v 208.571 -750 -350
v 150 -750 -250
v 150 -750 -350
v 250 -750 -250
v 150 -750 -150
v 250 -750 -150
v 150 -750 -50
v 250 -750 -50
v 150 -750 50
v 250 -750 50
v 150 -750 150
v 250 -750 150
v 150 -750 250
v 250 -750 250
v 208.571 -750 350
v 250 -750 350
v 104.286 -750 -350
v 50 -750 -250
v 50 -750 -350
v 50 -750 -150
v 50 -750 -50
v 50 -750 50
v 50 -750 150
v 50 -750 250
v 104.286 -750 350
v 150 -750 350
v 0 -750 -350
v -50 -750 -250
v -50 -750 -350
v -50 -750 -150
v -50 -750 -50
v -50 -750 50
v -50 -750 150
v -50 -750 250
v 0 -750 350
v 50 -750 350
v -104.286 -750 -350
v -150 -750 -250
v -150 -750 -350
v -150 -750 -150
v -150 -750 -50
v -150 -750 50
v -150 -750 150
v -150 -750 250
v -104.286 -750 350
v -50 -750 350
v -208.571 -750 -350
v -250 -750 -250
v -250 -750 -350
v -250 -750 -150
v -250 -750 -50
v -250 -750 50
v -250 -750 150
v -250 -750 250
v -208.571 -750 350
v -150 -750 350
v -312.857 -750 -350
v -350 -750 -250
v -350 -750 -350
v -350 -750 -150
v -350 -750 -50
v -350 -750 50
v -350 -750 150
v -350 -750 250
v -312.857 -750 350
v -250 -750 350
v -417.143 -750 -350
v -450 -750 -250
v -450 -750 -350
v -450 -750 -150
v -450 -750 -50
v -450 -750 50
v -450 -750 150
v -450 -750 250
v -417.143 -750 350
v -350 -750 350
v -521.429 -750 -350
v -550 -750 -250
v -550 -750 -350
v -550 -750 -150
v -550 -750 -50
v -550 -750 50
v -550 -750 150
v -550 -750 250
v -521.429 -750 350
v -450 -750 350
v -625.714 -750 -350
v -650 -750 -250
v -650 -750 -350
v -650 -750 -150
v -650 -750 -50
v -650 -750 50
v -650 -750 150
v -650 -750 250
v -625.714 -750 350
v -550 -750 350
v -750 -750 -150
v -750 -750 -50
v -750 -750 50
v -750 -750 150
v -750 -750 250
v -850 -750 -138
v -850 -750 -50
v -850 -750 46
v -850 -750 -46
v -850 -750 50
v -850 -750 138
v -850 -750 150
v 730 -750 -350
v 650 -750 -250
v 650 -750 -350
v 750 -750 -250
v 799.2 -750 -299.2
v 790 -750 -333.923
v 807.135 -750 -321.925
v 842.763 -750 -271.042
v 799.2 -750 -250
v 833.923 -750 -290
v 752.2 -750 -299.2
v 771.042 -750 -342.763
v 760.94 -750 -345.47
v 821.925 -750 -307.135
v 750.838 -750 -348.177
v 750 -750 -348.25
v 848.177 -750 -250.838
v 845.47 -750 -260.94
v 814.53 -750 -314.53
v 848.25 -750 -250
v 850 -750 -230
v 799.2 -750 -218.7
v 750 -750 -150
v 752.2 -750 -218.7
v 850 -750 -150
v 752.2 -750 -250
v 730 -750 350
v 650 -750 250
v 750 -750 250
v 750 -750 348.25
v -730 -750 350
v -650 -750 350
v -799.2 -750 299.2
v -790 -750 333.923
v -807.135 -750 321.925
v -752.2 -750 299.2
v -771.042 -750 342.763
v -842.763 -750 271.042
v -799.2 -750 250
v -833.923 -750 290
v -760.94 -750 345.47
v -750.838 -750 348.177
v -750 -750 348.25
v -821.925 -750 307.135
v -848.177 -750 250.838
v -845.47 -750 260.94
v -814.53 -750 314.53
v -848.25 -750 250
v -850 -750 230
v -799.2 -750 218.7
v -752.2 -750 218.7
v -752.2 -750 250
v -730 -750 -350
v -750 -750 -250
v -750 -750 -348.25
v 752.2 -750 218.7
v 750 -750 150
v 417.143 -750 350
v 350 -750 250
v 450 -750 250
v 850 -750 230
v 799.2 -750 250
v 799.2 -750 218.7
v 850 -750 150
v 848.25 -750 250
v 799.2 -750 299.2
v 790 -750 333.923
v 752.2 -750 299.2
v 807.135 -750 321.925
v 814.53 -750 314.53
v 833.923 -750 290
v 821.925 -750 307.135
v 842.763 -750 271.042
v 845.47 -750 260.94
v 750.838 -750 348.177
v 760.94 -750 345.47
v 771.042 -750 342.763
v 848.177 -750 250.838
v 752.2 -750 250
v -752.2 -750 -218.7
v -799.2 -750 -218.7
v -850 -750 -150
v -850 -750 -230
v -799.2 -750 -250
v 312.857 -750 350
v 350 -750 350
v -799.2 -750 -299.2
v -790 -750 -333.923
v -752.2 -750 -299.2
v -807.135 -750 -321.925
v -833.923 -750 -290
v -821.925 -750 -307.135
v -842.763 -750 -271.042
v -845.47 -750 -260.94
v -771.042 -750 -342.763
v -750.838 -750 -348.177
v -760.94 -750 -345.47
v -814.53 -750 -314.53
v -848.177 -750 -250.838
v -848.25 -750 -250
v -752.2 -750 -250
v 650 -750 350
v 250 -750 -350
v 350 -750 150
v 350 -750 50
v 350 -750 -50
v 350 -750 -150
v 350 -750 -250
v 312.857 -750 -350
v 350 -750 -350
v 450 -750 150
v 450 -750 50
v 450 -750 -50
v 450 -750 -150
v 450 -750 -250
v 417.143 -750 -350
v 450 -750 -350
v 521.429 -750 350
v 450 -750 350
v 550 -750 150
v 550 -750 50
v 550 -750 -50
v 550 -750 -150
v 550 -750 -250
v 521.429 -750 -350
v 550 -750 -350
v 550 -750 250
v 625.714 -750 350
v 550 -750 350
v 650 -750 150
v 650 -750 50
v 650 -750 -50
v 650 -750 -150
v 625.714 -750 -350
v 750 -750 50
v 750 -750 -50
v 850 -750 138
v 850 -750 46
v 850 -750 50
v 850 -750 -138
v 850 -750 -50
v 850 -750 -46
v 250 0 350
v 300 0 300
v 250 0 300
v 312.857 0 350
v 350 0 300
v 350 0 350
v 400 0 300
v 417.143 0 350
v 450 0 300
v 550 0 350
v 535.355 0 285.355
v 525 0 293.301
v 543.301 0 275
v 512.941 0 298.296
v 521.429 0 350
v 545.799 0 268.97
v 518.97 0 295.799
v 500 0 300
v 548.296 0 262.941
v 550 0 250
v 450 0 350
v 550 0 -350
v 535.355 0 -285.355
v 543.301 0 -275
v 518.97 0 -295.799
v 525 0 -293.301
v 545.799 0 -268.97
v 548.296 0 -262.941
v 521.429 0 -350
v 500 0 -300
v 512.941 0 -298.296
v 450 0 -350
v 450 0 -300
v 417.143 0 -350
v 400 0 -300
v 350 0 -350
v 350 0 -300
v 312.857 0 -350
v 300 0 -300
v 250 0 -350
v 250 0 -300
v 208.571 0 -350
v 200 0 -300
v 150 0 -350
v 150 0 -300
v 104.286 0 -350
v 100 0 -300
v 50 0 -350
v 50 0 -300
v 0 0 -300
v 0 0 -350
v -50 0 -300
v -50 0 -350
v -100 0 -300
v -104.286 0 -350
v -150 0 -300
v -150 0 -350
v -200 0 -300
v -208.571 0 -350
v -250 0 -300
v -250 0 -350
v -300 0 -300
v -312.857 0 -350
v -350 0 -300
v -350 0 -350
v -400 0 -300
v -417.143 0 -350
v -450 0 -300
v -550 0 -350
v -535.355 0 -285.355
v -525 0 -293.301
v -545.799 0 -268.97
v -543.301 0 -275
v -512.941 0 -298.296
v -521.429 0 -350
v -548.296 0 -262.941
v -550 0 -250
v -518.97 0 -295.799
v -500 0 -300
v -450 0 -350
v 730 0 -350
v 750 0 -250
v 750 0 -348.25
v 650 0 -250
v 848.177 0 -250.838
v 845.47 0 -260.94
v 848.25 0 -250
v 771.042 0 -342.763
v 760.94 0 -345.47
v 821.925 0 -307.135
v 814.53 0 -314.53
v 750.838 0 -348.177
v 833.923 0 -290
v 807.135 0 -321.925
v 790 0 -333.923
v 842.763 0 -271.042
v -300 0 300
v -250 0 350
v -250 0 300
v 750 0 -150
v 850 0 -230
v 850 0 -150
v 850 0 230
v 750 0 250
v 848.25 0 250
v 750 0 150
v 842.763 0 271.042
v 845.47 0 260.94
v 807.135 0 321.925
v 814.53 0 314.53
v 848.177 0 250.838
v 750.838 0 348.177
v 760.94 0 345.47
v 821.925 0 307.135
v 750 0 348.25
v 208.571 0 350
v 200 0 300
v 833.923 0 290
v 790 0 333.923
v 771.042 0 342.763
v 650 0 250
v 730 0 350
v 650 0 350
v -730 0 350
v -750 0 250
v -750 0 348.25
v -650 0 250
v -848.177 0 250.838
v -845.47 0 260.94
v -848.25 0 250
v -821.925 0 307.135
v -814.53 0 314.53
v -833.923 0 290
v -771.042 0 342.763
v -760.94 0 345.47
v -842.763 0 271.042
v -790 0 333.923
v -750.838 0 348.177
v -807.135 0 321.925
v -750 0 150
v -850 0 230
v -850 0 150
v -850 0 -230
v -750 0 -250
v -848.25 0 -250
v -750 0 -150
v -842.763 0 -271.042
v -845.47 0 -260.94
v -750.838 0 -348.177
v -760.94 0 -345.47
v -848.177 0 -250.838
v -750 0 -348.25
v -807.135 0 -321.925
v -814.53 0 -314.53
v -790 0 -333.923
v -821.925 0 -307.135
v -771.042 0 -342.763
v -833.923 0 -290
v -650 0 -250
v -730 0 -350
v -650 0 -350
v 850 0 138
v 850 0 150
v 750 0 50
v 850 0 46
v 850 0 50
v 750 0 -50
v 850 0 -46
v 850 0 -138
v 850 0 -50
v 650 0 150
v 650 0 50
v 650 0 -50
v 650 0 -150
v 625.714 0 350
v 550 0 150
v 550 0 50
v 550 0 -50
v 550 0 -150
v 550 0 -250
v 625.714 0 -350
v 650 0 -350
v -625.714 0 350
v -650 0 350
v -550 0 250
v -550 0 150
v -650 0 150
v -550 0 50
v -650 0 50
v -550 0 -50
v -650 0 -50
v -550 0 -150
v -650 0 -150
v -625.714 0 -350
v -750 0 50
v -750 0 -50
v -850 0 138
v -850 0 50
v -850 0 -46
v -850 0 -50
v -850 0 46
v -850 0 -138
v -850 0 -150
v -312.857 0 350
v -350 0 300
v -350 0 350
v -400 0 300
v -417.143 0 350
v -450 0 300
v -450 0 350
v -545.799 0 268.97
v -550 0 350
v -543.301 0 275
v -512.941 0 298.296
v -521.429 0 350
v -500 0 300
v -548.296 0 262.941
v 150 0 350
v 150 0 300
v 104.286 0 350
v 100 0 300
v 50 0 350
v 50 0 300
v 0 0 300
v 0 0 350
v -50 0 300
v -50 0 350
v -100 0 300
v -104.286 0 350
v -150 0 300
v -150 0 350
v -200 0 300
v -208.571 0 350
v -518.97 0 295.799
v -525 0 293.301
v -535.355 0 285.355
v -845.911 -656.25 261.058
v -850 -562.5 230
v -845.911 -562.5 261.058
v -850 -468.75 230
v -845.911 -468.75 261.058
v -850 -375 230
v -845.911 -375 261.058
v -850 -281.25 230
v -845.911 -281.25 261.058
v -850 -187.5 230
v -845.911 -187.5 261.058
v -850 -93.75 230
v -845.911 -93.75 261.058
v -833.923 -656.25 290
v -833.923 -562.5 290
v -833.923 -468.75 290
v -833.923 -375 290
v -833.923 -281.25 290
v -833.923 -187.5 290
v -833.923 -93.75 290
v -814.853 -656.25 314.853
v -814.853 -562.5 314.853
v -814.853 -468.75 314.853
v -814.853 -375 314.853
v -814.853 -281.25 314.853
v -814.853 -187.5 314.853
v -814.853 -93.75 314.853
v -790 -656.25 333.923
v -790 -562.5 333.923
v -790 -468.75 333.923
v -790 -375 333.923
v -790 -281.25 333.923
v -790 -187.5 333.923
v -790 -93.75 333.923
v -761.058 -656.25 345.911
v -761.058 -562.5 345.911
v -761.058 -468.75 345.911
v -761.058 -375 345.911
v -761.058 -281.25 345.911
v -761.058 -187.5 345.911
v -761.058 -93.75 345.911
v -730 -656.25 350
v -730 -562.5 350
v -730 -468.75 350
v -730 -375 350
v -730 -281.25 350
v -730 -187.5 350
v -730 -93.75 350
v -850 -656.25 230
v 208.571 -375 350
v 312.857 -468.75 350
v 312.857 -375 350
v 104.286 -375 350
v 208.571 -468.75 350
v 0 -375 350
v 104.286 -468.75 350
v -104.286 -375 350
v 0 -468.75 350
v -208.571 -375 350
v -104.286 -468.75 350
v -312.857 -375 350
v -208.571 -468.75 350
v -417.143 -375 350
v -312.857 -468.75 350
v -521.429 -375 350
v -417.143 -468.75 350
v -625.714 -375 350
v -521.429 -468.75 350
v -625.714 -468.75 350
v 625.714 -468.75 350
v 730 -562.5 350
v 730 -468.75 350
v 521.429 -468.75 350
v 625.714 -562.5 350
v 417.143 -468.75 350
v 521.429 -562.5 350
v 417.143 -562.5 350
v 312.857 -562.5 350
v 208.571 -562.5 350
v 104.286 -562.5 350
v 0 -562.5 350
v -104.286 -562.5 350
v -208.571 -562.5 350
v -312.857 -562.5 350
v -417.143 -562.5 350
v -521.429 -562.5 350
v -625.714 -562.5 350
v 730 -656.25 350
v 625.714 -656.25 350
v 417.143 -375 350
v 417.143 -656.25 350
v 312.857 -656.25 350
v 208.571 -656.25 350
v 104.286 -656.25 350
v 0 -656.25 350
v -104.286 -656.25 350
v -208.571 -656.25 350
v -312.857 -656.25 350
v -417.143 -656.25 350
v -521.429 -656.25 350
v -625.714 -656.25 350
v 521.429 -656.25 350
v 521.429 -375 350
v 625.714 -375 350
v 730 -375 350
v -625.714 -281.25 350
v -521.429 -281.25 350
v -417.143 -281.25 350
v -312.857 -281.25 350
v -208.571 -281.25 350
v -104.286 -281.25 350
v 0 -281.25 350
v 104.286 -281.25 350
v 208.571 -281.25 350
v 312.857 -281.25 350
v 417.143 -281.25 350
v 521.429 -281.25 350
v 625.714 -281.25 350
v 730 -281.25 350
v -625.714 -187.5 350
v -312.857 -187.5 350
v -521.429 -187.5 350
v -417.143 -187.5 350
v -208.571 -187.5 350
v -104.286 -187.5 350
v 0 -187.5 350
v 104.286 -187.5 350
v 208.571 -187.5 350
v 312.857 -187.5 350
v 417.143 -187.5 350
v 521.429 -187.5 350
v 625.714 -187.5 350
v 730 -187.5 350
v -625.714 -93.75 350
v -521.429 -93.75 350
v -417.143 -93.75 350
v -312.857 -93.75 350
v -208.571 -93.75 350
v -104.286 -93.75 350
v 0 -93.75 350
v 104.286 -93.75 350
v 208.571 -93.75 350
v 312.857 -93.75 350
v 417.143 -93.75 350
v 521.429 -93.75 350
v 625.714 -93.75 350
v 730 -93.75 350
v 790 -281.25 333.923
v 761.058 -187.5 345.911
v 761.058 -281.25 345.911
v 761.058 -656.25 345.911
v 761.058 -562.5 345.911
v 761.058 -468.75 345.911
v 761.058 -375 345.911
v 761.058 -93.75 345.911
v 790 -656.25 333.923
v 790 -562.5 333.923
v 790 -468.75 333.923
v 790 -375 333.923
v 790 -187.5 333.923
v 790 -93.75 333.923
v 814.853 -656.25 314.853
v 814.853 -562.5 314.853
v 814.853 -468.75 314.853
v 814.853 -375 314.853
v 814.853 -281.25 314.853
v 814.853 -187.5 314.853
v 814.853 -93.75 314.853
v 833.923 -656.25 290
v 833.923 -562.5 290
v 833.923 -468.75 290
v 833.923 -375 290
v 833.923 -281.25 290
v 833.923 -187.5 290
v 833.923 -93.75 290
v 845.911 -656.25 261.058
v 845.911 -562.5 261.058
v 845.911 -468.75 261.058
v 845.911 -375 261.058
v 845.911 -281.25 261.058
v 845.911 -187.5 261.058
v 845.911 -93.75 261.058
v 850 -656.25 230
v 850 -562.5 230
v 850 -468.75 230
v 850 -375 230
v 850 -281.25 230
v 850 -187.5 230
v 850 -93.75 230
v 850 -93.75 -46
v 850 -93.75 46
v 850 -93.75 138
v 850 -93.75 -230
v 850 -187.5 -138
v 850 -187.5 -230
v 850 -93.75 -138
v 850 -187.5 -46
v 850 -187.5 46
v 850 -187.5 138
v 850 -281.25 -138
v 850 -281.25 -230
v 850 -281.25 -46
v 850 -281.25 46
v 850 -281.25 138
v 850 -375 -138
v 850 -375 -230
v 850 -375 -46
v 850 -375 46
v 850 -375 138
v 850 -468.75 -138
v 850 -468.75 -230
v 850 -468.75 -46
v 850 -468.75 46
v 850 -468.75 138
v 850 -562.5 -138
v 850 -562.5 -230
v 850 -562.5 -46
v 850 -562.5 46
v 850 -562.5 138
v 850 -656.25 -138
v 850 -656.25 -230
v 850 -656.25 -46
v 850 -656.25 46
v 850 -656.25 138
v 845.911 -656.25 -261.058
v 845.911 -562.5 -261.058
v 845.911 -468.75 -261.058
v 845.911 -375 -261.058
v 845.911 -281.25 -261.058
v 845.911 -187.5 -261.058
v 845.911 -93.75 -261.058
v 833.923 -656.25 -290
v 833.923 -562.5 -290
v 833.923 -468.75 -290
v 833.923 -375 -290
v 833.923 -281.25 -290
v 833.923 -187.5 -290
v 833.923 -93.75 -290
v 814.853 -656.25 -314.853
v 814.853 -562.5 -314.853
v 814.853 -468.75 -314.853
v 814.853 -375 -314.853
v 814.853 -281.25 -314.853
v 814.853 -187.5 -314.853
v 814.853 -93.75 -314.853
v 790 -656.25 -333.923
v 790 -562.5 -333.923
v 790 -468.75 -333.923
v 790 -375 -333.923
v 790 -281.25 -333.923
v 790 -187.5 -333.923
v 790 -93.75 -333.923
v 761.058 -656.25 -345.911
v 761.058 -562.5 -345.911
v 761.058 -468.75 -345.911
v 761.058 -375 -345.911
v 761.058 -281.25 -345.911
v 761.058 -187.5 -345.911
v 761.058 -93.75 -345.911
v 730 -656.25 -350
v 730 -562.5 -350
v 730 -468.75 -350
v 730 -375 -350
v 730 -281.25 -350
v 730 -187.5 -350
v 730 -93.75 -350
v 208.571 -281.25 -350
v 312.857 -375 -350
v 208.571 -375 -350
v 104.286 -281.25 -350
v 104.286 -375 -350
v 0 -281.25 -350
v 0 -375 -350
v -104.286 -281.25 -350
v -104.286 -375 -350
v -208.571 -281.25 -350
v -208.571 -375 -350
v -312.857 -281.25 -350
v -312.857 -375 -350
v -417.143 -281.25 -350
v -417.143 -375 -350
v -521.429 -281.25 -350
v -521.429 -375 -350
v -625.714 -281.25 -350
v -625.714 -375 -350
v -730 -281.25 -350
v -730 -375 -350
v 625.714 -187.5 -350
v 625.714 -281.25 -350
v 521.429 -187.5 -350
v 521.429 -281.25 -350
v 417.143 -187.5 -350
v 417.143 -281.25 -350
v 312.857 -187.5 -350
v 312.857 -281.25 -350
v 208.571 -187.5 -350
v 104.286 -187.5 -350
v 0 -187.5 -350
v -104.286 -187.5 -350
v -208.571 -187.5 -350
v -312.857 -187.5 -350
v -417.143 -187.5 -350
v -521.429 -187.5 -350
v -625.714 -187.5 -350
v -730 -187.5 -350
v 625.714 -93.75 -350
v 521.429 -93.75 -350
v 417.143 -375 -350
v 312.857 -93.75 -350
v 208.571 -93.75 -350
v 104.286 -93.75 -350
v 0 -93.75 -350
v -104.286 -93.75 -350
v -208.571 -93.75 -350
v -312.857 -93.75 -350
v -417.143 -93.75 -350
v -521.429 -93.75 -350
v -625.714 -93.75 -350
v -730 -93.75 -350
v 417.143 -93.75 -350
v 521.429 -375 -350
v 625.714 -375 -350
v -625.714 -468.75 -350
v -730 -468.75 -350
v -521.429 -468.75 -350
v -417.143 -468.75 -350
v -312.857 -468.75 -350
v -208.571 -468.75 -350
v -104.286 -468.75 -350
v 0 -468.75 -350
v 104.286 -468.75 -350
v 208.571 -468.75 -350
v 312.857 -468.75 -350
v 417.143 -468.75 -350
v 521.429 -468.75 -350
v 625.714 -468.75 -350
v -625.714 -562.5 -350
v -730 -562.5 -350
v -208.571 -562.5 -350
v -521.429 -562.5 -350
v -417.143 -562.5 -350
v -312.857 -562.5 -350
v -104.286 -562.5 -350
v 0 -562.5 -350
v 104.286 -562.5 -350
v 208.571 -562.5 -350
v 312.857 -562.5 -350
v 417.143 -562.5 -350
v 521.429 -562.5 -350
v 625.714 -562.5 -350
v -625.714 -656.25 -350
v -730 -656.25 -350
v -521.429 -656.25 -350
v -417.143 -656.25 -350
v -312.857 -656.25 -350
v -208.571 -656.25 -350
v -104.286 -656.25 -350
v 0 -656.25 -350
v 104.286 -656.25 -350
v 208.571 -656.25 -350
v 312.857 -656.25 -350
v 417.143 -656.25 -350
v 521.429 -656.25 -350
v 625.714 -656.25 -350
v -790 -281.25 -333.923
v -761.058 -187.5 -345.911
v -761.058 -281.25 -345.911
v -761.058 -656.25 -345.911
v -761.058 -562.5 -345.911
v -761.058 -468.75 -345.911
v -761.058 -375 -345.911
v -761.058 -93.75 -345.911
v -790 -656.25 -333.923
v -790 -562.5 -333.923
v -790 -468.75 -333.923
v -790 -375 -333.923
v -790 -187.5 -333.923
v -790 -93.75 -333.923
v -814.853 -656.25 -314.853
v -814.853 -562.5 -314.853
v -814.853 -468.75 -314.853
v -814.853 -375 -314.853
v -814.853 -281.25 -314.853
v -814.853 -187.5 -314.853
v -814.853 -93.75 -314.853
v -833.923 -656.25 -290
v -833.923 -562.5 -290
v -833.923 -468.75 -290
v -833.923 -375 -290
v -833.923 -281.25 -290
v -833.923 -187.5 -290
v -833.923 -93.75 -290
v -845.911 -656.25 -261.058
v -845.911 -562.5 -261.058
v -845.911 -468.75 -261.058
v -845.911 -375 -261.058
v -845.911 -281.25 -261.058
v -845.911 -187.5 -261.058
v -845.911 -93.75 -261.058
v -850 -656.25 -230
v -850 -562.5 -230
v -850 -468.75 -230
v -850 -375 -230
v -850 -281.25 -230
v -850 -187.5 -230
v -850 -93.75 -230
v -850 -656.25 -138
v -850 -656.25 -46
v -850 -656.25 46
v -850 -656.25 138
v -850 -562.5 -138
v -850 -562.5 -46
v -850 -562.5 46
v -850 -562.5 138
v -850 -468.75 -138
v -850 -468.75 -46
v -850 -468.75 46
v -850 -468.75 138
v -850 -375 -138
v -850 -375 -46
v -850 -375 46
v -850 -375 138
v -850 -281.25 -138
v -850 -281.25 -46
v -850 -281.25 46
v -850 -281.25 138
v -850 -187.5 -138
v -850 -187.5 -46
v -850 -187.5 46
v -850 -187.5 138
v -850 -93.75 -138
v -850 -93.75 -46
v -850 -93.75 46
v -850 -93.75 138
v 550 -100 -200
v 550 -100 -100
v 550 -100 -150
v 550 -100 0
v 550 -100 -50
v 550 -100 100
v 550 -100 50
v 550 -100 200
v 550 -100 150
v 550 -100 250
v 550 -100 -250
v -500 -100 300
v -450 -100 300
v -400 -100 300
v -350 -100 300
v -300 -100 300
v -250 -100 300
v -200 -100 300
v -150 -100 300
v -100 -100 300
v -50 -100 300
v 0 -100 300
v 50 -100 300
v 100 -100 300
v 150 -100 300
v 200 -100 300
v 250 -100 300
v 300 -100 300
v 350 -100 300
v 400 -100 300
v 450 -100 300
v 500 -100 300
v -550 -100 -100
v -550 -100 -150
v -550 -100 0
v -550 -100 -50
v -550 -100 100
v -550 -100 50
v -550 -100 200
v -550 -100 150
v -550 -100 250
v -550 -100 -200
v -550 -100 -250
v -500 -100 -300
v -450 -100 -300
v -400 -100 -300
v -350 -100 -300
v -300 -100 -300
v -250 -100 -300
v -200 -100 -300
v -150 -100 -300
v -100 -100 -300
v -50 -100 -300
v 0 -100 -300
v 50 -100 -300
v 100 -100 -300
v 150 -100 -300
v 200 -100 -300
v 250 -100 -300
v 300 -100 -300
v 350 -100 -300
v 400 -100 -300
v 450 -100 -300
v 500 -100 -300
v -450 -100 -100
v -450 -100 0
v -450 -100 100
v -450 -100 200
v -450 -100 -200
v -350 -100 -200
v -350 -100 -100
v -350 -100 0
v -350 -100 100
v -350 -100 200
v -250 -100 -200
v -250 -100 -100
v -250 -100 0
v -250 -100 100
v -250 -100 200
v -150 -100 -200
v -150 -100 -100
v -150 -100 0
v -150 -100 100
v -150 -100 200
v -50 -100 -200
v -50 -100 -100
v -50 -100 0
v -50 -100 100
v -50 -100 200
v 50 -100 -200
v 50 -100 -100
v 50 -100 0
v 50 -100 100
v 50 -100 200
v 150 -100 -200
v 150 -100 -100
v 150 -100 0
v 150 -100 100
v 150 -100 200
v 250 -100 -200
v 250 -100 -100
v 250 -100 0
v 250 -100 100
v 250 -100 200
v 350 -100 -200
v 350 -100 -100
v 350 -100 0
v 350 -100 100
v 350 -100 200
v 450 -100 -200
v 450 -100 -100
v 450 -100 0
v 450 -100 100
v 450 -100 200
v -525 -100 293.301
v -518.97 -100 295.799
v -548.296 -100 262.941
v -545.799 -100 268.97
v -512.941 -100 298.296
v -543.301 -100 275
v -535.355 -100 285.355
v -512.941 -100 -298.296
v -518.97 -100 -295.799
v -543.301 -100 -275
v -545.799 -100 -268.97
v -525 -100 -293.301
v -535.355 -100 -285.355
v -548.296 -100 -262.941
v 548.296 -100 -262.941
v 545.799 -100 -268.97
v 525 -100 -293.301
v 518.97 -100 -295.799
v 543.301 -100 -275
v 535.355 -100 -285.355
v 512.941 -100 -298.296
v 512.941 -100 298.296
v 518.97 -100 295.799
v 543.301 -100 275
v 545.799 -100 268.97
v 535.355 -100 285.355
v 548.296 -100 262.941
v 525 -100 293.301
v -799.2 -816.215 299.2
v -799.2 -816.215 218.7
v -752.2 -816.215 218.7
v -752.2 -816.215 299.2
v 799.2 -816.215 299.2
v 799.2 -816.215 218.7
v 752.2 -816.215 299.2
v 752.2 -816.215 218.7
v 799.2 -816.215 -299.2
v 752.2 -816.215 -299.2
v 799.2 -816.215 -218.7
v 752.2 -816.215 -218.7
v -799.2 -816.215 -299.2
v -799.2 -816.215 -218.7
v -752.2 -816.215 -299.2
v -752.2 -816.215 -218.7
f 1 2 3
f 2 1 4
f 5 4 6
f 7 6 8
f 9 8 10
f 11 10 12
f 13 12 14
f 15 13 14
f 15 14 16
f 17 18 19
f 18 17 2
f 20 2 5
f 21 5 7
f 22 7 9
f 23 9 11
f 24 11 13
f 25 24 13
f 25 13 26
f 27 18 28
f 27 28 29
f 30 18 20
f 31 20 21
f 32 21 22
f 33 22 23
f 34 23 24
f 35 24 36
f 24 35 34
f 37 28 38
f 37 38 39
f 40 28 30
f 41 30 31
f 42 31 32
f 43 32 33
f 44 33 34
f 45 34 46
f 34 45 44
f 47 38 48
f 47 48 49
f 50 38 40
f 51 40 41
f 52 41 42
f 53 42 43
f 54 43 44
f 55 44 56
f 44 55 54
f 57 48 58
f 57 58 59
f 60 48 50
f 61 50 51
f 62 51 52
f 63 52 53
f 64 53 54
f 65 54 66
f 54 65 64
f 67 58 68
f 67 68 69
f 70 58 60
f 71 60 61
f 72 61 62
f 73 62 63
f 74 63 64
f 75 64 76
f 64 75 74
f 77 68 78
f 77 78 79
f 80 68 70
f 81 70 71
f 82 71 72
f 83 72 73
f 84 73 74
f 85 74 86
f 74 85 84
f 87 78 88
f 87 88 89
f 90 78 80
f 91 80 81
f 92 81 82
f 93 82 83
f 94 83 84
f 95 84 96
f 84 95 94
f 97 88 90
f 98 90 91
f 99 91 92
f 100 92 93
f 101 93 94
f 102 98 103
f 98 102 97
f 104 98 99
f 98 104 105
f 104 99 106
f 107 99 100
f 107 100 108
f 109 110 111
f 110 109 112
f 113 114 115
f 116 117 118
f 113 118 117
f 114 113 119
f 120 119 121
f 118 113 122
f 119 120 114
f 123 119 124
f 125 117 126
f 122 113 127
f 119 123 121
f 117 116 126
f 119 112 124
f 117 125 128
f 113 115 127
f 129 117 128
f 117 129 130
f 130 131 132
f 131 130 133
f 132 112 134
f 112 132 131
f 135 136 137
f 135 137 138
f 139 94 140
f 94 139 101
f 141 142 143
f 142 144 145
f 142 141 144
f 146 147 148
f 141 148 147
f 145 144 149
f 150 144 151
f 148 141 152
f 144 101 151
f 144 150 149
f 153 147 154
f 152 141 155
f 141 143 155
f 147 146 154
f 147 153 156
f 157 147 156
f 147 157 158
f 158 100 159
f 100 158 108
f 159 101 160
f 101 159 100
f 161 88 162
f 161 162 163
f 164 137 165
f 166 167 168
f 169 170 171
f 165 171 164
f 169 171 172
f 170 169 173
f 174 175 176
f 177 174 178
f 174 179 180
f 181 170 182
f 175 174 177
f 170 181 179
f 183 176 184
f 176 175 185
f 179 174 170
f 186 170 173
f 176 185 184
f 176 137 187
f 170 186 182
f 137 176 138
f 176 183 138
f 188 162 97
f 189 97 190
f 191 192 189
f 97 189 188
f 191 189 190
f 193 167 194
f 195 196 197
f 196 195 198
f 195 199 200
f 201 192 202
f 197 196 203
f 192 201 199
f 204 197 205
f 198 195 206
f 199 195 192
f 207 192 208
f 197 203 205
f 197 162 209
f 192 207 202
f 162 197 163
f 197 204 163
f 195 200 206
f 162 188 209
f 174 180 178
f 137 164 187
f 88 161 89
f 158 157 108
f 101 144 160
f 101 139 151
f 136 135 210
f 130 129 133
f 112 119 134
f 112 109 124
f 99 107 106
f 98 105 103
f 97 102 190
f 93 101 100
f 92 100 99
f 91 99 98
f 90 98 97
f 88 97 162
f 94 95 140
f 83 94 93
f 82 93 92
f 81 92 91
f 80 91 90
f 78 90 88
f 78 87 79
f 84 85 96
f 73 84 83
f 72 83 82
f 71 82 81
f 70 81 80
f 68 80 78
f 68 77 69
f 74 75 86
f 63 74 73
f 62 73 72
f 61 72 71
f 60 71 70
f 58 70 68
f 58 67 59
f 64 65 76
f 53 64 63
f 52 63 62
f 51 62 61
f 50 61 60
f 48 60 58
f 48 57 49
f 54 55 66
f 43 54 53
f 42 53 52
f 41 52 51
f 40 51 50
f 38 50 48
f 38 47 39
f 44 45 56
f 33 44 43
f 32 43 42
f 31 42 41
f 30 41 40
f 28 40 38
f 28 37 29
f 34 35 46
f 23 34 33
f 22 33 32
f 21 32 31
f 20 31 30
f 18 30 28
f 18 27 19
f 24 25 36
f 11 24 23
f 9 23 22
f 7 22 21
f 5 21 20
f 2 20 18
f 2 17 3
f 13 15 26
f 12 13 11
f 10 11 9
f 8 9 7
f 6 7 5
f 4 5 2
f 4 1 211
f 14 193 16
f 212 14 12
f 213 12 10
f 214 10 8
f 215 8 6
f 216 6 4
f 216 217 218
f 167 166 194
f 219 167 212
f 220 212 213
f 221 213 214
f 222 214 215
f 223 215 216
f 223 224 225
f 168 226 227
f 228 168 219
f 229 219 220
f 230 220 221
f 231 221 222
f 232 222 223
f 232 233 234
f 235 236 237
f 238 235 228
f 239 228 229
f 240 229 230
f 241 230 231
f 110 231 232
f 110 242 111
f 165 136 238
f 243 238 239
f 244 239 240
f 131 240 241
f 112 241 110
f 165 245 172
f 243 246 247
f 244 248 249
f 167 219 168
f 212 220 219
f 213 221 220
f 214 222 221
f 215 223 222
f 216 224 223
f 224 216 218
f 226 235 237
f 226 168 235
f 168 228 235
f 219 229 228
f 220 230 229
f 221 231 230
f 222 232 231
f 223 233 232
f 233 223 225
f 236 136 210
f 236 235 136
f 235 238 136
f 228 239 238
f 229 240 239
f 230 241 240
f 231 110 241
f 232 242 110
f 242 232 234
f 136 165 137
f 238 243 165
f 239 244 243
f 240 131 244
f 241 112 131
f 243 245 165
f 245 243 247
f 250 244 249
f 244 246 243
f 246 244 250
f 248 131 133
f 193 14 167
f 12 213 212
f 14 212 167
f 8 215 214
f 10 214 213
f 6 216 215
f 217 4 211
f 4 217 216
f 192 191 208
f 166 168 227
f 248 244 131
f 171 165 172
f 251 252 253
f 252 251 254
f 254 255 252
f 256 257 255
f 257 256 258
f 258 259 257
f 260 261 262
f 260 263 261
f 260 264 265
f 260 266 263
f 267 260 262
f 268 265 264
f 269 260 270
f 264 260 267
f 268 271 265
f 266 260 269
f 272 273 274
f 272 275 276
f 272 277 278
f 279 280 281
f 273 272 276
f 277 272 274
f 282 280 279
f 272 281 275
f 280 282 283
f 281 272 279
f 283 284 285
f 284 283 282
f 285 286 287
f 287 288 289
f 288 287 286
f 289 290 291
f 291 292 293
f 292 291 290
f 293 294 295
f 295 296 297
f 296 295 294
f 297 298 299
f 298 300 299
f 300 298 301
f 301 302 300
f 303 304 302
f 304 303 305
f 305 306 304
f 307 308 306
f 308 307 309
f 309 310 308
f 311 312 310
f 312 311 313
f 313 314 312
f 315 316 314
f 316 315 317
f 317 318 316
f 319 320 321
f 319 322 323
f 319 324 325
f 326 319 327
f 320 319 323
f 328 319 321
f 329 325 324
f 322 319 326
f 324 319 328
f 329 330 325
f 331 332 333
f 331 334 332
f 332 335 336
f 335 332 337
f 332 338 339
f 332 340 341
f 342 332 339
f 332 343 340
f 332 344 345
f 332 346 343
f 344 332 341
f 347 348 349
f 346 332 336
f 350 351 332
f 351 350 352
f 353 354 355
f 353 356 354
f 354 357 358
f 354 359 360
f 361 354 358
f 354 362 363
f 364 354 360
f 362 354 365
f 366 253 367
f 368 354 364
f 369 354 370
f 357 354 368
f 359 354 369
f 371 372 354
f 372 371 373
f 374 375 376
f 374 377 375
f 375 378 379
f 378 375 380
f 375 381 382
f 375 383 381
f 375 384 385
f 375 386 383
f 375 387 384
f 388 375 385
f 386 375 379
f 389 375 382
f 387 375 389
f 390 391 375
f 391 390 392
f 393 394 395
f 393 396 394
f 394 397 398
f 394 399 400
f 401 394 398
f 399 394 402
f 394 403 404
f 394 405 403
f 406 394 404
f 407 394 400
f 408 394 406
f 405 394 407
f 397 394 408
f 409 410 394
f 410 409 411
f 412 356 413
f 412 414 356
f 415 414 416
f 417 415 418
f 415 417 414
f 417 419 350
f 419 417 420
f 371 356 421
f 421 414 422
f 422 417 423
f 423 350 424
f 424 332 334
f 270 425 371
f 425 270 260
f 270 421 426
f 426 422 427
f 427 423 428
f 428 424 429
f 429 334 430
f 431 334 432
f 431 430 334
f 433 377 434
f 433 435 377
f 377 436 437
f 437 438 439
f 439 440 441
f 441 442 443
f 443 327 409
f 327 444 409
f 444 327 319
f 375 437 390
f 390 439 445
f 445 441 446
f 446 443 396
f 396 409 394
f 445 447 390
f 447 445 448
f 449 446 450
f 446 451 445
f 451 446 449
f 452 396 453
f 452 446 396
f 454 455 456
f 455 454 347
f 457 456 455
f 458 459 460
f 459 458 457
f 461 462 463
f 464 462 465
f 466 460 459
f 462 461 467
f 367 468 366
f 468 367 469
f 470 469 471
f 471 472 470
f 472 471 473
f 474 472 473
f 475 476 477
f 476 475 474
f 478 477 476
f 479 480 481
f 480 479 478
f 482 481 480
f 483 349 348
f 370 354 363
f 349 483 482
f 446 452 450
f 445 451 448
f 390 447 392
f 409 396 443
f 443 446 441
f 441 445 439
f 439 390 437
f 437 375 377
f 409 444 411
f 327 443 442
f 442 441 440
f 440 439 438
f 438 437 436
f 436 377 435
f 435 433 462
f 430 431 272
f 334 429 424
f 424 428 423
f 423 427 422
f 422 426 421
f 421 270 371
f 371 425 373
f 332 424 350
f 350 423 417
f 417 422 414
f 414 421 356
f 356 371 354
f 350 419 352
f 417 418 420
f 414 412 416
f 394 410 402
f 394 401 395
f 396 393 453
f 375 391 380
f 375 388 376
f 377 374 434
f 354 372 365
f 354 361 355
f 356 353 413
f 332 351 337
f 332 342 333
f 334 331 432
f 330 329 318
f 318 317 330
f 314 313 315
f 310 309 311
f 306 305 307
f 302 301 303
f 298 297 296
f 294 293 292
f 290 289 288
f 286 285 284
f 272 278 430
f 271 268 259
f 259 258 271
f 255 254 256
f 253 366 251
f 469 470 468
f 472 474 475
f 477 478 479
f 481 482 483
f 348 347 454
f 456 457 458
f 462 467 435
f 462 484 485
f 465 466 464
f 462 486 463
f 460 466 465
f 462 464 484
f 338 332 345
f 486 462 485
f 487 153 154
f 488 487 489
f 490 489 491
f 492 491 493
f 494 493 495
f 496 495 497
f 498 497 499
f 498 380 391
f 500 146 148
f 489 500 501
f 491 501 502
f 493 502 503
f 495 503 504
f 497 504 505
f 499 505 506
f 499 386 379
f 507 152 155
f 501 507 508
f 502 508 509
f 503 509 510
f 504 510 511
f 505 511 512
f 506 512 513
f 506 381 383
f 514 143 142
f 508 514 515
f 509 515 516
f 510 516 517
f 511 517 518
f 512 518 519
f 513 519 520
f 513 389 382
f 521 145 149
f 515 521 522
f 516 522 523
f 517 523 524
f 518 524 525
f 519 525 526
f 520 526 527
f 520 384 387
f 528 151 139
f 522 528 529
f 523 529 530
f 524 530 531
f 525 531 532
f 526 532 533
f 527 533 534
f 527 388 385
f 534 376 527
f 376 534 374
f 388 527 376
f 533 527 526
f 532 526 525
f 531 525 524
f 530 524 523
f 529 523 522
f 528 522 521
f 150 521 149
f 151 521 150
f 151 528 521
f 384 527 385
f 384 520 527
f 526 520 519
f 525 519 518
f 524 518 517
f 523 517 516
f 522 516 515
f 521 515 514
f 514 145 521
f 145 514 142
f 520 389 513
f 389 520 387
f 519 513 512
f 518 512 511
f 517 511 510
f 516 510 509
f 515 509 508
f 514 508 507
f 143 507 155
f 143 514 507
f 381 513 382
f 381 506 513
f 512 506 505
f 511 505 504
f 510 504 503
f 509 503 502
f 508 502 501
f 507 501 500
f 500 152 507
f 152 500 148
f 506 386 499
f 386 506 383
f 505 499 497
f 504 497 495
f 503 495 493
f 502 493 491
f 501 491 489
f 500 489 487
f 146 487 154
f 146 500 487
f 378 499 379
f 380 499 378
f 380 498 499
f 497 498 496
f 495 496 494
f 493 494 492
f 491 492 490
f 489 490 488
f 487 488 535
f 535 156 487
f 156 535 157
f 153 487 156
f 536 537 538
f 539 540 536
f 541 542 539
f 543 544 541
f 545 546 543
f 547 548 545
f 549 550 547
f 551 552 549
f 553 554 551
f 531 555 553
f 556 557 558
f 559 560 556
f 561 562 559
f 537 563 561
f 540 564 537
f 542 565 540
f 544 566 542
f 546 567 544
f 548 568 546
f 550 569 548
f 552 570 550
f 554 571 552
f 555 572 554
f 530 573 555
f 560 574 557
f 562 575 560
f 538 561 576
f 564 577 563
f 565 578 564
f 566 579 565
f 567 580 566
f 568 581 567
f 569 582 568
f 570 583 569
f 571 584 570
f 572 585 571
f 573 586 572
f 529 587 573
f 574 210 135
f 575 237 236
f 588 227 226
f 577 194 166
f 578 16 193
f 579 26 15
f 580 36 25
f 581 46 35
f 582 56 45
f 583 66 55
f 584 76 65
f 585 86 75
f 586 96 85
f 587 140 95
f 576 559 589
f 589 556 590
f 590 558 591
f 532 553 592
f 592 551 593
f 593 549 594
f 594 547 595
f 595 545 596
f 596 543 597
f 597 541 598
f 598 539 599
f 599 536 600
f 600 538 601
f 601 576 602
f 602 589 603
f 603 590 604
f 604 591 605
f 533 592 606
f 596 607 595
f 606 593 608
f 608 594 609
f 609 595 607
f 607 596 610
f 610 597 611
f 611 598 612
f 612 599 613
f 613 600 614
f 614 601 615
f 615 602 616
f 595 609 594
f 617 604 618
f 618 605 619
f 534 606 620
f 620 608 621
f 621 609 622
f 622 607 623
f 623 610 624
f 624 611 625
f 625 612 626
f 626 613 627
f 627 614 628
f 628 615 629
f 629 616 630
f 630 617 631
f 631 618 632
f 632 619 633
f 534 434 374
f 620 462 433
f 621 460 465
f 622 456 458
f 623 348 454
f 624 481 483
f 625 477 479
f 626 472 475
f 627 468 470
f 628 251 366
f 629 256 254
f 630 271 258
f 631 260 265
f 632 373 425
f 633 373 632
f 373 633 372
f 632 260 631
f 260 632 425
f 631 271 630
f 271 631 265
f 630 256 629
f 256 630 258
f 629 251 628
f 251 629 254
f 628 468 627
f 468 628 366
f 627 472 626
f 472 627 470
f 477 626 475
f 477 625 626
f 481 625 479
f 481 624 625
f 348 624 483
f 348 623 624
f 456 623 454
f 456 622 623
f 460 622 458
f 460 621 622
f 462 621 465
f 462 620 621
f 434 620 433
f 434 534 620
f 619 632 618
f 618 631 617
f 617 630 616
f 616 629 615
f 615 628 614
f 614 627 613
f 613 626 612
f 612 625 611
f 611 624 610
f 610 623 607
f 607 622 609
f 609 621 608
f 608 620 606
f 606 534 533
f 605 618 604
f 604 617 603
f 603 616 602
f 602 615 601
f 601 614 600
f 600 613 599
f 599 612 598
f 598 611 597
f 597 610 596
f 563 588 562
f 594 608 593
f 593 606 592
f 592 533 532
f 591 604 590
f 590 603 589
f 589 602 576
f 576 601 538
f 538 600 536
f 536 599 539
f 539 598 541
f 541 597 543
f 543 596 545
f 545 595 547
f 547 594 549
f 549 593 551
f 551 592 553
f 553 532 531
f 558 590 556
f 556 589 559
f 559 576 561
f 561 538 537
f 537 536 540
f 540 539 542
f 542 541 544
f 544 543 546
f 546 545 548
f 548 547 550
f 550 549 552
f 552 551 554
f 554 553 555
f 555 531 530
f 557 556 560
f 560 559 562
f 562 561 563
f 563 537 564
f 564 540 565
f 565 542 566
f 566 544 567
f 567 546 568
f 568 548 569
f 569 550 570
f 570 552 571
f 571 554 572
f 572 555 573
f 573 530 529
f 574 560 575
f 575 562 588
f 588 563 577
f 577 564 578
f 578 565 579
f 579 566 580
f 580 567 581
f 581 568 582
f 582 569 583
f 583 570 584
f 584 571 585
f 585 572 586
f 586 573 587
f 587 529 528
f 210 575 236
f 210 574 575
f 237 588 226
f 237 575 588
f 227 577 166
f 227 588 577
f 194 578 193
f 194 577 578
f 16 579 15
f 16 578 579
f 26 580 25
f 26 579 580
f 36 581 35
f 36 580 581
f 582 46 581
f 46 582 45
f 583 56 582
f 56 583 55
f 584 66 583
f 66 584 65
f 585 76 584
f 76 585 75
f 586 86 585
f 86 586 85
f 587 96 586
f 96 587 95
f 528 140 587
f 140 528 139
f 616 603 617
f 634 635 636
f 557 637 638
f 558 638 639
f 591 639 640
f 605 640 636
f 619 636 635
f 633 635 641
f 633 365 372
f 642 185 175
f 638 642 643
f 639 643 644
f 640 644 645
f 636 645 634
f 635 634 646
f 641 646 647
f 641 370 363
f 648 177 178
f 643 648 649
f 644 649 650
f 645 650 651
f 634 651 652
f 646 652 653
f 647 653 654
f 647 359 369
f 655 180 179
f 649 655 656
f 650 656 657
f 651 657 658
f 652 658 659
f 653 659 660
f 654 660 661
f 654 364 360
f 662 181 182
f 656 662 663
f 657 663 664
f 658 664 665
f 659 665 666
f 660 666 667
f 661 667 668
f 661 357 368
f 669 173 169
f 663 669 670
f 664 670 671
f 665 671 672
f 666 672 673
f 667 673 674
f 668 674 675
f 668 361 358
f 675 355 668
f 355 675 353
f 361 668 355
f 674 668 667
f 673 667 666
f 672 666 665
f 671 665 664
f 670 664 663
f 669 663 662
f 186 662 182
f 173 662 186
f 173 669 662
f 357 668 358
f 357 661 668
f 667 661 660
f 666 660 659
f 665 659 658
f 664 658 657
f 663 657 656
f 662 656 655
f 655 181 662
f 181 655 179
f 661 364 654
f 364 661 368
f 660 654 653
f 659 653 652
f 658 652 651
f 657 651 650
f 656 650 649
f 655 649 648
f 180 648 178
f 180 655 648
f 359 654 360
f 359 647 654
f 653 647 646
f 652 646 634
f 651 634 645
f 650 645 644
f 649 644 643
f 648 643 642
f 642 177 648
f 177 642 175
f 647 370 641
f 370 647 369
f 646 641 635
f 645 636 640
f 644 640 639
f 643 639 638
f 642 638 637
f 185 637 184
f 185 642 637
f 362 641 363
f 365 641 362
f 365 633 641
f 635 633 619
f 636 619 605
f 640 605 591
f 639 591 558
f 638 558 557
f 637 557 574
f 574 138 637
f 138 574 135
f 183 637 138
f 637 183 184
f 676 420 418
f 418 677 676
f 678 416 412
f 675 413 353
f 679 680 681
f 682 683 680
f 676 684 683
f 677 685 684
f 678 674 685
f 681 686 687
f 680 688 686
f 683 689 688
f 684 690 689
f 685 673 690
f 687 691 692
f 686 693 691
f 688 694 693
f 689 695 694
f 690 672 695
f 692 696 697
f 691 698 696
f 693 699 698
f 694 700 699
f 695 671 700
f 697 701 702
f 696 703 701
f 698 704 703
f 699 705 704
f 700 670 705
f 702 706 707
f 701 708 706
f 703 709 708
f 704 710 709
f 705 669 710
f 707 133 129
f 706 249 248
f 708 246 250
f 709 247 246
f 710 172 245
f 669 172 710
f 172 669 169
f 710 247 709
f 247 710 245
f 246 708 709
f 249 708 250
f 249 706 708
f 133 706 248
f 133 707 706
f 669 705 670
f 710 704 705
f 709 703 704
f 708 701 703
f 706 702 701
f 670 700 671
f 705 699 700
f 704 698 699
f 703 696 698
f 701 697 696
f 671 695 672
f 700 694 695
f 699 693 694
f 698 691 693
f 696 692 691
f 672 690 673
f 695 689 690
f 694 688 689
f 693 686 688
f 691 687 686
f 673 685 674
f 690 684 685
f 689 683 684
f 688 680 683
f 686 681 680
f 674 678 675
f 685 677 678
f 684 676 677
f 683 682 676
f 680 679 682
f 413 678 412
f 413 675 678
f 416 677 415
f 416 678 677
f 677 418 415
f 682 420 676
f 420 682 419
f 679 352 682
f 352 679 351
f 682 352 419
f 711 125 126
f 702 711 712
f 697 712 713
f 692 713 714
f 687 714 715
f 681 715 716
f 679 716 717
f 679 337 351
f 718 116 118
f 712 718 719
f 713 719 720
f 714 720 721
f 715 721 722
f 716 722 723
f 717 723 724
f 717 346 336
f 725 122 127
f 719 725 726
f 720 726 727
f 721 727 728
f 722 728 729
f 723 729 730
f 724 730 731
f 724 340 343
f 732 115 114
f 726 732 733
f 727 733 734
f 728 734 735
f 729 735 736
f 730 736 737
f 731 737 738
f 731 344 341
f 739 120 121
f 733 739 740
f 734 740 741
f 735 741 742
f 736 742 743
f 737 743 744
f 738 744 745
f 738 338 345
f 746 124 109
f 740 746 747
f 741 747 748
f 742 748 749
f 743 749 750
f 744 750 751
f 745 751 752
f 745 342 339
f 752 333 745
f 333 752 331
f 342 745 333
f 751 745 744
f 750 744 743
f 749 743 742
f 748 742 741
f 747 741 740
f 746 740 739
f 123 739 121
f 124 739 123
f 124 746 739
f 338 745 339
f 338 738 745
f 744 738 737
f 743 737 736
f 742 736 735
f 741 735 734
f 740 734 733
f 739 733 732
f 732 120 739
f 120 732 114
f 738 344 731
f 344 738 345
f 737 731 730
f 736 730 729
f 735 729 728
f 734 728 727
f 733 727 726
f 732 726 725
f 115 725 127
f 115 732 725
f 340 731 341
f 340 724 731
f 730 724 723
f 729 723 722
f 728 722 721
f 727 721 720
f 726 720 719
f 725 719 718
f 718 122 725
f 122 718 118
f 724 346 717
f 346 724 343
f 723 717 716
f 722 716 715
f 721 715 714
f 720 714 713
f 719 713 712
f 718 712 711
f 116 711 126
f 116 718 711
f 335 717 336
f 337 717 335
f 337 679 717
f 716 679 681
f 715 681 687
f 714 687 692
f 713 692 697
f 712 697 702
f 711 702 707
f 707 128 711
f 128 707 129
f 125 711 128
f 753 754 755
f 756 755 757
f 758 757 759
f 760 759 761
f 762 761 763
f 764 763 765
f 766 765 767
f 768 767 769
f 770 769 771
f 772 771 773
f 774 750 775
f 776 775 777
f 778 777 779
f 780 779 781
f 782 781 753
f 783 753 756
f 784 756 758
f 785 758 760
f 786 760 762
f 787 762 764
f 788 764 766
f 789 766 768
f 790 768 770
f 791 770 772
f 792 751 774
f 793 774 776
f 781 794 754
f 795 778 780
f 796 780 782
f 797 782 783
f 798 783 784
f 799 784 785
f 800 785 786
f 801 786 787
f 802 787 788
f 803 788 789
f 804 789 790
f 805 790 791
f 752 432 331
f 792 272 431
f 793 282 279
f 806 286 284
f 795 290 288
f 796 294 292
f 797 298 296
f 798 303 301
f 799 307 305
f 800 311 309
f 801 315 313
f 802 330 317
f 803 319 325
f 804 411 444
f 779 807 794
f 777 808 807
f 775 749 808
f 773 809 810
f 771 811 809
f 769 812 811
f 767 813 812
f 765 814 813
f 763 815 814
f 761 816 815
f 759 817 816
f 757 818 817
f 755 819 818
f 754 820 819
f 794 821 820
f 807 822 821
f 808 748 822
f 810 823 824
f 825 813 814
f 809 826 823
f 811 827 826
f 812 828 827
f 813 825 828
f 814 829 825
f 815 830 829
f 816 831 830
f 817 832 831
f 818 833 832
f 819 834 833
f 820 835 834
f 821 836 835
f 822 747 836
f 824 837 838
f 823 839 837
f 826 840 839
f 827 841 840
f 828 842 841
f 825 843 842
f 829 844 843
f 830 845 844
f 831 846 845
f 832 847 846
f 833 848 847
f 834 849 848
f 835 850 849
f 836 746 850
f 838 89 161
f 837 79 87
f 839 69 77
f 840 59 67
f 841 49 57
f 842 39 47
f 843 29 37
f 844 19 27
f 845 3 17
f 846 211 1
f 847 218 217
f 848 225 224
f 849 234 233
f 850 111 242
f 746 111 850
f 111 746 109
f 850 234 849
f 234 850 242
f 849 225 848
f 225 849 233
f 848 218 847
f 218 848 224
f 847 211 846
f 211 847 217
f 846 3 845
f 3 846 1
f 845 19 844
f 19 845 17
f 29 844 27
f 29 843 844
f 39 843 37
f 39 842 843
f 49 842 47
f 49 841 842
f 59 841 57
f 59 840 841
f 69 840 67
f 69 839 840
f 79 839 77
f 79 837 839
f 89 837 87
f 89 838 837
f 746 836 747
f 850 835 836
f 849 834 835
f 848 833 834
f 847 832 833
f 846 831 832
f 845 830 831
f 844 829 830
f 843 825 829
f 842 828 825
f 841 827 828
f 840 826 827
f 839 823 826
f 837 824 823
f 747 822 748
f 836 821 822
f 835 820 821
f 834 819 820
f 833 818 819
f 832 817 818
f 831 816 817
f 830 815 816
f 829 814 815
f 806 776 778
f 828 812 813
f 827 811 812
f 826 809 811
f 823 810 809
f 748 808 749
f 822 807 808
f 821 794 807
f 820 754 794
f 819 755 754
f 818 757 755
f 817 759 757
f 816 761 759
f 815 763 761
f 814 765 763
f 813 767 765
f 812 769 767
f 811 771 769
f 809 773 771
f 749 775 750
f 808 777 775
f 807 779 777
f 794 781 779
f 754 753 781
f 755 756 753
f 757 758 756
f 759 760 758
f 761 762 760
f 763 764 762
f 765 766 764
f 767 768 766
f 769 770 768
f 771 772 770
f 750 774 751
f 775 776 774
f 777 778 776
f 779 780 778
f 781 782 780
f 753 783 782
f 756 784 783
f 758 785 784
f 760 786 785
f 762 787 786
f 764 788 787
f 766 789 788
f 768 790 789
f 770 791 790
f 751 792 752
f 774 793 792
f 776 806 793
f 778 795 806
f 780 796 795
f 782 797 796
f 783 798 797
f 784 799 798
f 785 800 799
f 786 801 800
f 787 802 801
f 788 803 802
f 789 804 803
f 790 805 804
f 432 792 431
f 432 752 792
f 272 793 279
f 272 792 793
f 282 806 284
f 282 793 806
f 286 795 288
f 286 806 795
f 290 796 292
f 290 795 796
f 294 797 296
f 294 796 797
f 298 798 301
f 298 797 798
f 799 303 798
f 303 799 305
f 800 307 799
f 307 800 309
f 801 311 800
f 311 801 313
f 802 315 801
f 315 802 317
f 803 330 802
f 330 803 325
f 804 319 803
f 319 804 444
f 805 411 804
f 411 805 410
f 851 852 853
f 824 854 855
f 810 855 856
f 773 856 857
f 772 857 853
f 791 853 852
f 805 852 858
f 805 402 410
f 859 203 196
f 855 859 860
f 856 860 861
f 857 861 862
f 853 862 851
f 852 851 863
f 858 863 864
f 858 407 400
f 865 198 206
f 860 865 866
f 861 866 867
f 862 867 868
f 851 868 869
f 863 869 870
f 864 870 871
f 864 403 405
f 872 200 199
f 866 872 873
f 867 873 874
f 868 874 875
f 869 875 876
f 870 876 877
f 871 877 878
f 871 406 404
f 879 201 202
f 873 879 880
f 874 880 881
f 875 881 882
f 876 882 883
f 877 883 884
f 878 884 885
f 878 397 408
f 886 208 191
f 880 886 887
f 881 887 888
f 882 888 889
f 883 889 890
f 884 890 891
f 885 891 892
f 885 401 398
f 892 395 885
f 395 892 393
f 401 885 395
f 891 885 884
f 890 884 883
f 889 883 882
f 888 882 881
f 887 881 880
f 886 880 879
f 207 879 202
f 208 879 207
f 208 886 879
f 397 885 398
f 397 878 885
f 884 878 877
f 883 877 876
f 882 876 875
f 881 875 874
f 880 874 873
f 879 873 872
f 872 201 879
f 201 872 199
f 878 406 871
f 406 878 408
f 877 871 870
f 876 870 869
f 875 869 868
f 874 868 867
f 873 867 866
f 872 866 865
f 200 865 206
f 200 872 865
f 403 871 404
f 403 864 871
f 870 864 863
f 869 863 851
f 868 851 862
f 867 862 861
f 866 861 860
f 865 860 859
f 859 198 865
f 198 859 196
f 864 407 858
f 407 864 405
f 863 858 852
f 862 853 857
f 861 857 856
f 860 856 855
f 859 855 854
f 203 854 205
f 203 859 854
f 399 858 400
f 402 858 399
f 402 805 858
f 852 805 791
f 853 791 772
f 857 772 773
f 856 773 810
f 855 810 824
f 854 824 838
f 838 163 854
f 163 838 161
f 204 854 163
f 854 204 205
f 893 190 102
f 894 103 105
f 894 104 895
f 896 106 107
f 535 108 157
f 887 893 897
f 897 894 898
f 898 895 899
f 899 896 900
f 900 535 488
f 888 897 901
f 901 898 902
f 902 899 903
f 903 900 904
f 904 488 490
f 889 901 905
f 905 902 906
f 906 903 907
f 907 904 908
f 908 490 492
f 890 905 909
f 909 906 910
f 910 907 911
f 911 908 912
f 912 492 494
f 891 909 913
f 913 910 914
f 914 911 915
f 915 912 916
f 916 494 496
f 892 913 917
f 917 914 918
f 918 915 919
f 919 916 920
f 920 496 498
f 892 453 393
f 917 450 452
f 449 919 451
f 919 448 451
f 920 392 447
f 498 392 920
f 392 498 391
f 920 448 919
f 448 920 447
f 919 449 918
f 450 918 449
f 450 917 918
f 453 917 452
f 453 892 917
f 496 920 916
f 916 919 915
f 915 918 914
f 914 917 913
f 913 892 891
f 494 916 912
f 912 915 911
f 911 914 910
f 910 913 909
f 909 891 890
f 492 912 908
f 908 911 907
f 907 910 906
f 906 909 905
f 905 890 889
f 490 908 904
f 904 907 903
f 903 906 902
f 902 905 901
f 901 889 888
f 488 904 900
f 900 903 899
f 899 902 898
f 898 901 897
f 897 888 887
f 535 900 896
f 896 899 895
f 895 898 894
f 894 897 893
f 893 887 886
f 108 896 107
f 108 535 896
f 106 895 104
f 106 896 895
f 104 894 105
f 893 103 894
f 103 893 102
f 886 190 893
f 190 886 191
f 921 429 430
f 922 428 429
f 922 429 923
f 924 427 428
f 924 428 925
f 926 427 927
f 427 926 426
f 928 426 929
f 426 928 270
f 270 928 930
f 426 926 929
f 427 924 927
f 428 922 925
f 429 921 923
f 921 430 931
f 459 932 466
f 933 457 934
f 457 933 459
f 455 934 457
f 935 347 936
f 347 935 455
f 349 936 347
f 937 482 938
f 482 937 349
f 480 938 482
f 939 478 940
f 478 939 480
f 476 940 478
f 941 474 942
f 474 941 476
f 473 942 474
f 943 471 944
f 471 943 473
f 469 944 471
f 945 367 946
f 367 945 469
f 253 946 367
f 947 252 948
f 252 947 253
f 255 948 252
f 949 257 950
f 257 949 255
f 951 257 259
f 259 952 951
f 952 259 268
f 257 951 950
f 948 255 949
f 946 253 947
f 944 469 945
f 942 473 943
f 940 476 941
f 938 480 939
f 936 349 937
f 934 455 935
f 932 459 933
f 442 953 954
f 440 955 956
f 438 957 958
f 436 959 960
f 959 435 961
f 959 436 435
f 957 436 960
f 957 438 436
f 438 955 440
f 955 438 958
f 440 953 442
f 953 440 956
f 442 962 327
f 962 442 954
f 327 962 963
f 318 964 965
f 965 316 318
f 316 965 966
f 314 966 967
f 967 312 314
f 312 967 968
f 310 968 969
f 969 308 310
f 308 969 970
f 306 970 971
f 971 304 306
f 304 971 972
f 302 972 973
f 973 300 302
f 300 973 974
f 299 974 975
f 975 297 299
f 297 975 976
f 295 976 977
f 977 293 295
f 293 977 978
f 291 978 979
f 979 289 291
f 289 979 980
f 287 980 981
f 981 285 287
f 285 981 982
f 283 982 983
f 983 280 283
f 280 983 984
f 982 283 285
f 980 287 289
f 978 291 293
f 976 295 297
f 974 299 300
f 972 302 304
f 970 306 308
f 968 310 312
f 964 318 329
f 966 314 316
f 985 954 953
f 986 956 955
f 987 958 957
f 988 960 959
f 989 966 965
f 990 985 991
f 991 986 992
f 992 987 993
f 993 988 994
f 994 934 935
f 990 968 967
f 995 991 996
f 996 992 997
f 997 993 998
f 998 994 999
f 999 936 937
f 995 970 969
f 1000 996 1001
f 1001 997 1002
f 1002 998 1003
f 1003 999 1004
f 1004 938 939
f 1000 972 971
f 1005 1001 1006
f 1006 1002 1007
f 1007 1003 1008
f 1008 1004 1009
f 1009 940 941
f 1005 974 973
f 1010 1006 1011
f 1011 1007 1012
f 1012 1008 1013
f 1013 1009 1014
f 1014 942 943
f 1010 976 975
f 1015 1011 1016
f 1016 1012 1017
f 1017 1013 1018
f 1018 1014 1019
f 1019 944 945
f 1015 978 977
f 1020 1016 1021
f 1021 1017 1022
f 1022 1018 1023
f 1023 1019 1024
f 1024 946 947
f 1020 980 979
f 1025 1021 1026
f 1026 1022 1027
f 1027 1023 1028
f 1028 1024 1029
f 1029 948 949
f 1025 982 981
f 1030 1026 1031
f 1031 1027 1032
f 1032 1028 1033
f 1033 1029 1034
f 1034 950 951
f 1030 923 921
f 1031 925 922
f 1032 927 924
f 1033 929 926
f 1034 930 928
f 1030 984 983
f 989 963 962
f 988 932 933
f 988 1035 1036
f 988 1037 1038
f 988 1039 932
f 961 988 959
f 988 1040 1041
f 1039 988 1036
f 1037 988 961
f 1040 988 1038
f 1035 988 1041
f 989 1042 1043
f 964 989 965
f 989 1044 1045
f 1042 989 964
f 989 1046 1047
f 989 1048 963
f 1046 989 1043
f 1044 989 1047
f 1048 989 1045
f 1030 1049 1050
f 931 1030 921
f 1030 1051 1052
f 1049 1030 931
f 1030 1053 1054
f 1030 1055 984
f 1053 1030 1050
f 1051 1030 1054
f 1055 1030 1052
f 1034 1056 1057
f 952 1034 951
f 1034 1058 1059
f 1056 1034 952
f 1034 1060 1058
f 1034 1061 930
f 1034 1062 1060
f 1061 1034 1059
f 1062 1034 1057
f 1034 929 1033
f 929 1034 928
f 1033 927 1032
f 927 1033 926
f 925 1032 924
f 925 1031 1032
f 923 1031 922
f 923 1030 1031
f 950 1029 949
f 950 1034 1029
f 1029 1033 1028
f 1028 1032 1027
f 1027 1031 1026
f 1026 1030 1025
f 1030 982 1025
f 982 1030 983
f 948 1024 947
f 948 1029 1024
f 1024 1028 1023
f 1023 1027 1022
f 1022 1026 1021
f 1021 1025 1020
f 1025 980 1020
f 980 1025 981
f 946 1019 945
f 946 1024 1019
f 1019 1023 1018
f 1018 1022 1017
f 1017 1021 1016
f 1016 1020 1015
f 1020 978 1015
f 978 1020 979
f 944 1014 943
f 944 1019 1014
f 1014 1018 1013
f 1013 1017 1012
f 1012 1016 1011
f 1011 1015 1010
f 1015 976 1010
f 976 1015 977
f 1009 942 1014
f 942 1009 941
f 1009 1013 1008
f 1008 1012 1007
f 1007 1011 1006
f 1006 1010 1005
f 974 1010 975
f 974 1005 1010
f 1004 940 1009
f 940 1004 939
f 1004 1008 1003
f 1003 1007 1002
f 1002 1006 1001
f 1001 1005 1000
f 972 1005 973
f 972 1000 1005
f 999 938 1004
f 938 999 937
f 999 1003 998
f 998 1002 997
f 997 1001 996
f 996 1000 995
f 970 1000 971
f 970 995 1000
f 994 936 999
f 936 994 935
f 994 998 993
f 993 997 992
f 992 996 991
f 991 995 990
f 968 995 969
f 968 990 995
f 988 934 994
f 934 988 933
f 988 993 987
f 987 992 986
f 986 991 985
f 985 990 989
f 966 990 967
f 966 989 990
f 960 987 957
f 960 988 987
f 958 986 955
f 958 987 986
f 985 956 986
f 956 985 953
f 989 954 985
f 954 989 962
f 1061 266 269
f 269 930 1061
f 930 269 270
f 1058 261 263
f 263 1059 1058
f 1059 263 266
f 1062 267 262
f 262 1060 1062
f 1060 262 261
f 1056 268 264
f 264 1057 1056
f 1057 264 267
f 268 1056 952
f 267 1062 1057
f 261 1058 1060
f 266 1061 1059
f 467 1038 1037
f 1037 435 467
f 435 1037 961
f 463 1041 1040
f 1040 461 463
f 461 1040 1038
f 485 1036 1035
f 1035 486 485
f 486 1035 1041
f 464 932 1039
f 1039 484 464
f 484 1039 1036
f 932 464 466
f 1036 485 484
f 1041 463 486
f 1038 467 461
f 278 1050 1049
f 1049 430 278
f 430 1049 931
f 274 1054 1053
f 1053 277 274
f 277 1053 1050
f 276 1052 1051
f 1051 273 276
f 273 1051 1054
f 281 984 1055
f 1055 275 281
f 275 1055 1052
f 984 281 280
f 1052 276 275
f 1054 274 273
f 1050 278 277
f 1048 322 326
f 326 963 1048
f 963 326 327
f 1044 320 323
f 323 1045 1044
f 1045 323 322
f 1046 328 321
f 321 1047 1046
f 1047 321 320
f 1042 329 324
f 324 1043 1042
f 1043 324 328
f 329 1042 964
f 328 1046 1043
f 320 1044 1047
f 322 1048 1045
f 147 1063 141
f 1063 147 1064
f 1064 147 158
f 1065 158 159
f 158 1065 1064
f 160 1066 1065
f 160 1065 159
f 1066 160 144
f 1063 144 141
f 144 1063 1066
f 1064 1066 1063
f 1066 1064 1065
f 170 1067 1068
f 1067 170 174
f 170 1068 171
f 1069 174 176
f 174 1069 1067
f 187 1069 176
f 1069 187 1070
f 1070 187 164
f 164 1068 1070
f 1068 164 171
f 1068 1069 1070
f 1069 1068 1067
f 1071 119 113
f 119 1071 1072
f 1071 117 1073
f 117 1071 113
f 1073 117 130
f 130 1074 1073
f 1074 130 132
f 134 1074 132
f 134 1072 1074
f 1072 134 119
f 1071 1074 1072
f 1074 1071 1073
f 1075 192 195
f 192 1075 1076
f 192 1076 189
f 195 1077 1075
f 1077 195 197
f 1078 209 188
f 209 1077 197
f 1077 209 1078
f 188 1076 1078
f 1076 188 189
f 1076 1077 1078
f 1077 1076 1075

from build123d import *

# Parameters (mm, degrees)
BOSS_EXTRUDE1_DEPTH = 750
SKETCH1_3_W         = 1100
SKETCH1_3_H         = 600
CUT_EXTRUDE1_DEPTH  = 100
FILLET1_R           = 50.000000076
SKETCH2_W           = 47
SKETCH2_H           = 80.5
BOSS_EXTRUDE2_DEPTH = 66.215


with BuildPart() as part:
    # Sketch1 → Boss-Extrude1 (new body)
    with BuildSketch(Plane(origin=(0, 0, 0), x_dir=(1, 0, 0), z_dir=(0, 1, 0))):
        with BuildLine():
            Line((730, 350), (-730, 350))
            ThreePointArc((-730, 350), (-814.852813742, 314.852813742), (-850, 230))
            Line((-850, 230), (-850, -230))
            ThreePointArc((-850, -230), (-814.852813742, -314.852813742), (-730, -350))
            Line((-730, -350), (730, -350))
            ThreePointArc((730, -350), (814.852813742, -314.852813742), (850, -230))
            Line((850, -230), (850, 230))
            ThreePointArc((850, 230), (814.852813742, 314.852813742), (730, 350))
        make_face()
    extrude(amount=-BOSS_EXTRUDE1_DEPTH)

    # Sketch1<3> → Cut-Extrude1 (cut)
    with BuildSketch(Plane(origin=(0, 0, 0), x_dir=(1, 0, 0), z_dir=(0, 1, 0))):
        Rectangle(SKETCH1_3_W, SKETCH1_3_H)
    extrude(amount=-CUT_EXTRUDE1_DEPTH, mode=Mode.SUBTRACT)

    # Fillet1
    fillet1_edges = [part.edges().sort_by_distance(p)[0] for p in [
        (550, -50, 300),
        (-550, -50, 300),
        (550, -50, -300),
        (-550, -50, -300),
    ]]
    fillet(fillet1_edges, radius=FILLET1_R)

    # Sketch2 → Boss-Extrude2 (add)
    with BuildSketch(Plane.XZ.offset(750)):
        with Locations((-775.7, 258.95)):
            Rectangle(SKETCH2_W, SKETCH2_H)
        with Locations((775.7, 258.95)):
            Rectangle(SKETCH2_W, SKETCH2_H)
        with Locations((775.7, -258.95)):
            Rectangle(SKETCH2_W, SKETCH2_H)
        with Locations((-775.7, -258.95)):
            Rectangle(SKETCH2_W, SKETCH2_H)
    extrude(amount=BOSS_EXTRUDE2_DEPTH)


solid = part.part
